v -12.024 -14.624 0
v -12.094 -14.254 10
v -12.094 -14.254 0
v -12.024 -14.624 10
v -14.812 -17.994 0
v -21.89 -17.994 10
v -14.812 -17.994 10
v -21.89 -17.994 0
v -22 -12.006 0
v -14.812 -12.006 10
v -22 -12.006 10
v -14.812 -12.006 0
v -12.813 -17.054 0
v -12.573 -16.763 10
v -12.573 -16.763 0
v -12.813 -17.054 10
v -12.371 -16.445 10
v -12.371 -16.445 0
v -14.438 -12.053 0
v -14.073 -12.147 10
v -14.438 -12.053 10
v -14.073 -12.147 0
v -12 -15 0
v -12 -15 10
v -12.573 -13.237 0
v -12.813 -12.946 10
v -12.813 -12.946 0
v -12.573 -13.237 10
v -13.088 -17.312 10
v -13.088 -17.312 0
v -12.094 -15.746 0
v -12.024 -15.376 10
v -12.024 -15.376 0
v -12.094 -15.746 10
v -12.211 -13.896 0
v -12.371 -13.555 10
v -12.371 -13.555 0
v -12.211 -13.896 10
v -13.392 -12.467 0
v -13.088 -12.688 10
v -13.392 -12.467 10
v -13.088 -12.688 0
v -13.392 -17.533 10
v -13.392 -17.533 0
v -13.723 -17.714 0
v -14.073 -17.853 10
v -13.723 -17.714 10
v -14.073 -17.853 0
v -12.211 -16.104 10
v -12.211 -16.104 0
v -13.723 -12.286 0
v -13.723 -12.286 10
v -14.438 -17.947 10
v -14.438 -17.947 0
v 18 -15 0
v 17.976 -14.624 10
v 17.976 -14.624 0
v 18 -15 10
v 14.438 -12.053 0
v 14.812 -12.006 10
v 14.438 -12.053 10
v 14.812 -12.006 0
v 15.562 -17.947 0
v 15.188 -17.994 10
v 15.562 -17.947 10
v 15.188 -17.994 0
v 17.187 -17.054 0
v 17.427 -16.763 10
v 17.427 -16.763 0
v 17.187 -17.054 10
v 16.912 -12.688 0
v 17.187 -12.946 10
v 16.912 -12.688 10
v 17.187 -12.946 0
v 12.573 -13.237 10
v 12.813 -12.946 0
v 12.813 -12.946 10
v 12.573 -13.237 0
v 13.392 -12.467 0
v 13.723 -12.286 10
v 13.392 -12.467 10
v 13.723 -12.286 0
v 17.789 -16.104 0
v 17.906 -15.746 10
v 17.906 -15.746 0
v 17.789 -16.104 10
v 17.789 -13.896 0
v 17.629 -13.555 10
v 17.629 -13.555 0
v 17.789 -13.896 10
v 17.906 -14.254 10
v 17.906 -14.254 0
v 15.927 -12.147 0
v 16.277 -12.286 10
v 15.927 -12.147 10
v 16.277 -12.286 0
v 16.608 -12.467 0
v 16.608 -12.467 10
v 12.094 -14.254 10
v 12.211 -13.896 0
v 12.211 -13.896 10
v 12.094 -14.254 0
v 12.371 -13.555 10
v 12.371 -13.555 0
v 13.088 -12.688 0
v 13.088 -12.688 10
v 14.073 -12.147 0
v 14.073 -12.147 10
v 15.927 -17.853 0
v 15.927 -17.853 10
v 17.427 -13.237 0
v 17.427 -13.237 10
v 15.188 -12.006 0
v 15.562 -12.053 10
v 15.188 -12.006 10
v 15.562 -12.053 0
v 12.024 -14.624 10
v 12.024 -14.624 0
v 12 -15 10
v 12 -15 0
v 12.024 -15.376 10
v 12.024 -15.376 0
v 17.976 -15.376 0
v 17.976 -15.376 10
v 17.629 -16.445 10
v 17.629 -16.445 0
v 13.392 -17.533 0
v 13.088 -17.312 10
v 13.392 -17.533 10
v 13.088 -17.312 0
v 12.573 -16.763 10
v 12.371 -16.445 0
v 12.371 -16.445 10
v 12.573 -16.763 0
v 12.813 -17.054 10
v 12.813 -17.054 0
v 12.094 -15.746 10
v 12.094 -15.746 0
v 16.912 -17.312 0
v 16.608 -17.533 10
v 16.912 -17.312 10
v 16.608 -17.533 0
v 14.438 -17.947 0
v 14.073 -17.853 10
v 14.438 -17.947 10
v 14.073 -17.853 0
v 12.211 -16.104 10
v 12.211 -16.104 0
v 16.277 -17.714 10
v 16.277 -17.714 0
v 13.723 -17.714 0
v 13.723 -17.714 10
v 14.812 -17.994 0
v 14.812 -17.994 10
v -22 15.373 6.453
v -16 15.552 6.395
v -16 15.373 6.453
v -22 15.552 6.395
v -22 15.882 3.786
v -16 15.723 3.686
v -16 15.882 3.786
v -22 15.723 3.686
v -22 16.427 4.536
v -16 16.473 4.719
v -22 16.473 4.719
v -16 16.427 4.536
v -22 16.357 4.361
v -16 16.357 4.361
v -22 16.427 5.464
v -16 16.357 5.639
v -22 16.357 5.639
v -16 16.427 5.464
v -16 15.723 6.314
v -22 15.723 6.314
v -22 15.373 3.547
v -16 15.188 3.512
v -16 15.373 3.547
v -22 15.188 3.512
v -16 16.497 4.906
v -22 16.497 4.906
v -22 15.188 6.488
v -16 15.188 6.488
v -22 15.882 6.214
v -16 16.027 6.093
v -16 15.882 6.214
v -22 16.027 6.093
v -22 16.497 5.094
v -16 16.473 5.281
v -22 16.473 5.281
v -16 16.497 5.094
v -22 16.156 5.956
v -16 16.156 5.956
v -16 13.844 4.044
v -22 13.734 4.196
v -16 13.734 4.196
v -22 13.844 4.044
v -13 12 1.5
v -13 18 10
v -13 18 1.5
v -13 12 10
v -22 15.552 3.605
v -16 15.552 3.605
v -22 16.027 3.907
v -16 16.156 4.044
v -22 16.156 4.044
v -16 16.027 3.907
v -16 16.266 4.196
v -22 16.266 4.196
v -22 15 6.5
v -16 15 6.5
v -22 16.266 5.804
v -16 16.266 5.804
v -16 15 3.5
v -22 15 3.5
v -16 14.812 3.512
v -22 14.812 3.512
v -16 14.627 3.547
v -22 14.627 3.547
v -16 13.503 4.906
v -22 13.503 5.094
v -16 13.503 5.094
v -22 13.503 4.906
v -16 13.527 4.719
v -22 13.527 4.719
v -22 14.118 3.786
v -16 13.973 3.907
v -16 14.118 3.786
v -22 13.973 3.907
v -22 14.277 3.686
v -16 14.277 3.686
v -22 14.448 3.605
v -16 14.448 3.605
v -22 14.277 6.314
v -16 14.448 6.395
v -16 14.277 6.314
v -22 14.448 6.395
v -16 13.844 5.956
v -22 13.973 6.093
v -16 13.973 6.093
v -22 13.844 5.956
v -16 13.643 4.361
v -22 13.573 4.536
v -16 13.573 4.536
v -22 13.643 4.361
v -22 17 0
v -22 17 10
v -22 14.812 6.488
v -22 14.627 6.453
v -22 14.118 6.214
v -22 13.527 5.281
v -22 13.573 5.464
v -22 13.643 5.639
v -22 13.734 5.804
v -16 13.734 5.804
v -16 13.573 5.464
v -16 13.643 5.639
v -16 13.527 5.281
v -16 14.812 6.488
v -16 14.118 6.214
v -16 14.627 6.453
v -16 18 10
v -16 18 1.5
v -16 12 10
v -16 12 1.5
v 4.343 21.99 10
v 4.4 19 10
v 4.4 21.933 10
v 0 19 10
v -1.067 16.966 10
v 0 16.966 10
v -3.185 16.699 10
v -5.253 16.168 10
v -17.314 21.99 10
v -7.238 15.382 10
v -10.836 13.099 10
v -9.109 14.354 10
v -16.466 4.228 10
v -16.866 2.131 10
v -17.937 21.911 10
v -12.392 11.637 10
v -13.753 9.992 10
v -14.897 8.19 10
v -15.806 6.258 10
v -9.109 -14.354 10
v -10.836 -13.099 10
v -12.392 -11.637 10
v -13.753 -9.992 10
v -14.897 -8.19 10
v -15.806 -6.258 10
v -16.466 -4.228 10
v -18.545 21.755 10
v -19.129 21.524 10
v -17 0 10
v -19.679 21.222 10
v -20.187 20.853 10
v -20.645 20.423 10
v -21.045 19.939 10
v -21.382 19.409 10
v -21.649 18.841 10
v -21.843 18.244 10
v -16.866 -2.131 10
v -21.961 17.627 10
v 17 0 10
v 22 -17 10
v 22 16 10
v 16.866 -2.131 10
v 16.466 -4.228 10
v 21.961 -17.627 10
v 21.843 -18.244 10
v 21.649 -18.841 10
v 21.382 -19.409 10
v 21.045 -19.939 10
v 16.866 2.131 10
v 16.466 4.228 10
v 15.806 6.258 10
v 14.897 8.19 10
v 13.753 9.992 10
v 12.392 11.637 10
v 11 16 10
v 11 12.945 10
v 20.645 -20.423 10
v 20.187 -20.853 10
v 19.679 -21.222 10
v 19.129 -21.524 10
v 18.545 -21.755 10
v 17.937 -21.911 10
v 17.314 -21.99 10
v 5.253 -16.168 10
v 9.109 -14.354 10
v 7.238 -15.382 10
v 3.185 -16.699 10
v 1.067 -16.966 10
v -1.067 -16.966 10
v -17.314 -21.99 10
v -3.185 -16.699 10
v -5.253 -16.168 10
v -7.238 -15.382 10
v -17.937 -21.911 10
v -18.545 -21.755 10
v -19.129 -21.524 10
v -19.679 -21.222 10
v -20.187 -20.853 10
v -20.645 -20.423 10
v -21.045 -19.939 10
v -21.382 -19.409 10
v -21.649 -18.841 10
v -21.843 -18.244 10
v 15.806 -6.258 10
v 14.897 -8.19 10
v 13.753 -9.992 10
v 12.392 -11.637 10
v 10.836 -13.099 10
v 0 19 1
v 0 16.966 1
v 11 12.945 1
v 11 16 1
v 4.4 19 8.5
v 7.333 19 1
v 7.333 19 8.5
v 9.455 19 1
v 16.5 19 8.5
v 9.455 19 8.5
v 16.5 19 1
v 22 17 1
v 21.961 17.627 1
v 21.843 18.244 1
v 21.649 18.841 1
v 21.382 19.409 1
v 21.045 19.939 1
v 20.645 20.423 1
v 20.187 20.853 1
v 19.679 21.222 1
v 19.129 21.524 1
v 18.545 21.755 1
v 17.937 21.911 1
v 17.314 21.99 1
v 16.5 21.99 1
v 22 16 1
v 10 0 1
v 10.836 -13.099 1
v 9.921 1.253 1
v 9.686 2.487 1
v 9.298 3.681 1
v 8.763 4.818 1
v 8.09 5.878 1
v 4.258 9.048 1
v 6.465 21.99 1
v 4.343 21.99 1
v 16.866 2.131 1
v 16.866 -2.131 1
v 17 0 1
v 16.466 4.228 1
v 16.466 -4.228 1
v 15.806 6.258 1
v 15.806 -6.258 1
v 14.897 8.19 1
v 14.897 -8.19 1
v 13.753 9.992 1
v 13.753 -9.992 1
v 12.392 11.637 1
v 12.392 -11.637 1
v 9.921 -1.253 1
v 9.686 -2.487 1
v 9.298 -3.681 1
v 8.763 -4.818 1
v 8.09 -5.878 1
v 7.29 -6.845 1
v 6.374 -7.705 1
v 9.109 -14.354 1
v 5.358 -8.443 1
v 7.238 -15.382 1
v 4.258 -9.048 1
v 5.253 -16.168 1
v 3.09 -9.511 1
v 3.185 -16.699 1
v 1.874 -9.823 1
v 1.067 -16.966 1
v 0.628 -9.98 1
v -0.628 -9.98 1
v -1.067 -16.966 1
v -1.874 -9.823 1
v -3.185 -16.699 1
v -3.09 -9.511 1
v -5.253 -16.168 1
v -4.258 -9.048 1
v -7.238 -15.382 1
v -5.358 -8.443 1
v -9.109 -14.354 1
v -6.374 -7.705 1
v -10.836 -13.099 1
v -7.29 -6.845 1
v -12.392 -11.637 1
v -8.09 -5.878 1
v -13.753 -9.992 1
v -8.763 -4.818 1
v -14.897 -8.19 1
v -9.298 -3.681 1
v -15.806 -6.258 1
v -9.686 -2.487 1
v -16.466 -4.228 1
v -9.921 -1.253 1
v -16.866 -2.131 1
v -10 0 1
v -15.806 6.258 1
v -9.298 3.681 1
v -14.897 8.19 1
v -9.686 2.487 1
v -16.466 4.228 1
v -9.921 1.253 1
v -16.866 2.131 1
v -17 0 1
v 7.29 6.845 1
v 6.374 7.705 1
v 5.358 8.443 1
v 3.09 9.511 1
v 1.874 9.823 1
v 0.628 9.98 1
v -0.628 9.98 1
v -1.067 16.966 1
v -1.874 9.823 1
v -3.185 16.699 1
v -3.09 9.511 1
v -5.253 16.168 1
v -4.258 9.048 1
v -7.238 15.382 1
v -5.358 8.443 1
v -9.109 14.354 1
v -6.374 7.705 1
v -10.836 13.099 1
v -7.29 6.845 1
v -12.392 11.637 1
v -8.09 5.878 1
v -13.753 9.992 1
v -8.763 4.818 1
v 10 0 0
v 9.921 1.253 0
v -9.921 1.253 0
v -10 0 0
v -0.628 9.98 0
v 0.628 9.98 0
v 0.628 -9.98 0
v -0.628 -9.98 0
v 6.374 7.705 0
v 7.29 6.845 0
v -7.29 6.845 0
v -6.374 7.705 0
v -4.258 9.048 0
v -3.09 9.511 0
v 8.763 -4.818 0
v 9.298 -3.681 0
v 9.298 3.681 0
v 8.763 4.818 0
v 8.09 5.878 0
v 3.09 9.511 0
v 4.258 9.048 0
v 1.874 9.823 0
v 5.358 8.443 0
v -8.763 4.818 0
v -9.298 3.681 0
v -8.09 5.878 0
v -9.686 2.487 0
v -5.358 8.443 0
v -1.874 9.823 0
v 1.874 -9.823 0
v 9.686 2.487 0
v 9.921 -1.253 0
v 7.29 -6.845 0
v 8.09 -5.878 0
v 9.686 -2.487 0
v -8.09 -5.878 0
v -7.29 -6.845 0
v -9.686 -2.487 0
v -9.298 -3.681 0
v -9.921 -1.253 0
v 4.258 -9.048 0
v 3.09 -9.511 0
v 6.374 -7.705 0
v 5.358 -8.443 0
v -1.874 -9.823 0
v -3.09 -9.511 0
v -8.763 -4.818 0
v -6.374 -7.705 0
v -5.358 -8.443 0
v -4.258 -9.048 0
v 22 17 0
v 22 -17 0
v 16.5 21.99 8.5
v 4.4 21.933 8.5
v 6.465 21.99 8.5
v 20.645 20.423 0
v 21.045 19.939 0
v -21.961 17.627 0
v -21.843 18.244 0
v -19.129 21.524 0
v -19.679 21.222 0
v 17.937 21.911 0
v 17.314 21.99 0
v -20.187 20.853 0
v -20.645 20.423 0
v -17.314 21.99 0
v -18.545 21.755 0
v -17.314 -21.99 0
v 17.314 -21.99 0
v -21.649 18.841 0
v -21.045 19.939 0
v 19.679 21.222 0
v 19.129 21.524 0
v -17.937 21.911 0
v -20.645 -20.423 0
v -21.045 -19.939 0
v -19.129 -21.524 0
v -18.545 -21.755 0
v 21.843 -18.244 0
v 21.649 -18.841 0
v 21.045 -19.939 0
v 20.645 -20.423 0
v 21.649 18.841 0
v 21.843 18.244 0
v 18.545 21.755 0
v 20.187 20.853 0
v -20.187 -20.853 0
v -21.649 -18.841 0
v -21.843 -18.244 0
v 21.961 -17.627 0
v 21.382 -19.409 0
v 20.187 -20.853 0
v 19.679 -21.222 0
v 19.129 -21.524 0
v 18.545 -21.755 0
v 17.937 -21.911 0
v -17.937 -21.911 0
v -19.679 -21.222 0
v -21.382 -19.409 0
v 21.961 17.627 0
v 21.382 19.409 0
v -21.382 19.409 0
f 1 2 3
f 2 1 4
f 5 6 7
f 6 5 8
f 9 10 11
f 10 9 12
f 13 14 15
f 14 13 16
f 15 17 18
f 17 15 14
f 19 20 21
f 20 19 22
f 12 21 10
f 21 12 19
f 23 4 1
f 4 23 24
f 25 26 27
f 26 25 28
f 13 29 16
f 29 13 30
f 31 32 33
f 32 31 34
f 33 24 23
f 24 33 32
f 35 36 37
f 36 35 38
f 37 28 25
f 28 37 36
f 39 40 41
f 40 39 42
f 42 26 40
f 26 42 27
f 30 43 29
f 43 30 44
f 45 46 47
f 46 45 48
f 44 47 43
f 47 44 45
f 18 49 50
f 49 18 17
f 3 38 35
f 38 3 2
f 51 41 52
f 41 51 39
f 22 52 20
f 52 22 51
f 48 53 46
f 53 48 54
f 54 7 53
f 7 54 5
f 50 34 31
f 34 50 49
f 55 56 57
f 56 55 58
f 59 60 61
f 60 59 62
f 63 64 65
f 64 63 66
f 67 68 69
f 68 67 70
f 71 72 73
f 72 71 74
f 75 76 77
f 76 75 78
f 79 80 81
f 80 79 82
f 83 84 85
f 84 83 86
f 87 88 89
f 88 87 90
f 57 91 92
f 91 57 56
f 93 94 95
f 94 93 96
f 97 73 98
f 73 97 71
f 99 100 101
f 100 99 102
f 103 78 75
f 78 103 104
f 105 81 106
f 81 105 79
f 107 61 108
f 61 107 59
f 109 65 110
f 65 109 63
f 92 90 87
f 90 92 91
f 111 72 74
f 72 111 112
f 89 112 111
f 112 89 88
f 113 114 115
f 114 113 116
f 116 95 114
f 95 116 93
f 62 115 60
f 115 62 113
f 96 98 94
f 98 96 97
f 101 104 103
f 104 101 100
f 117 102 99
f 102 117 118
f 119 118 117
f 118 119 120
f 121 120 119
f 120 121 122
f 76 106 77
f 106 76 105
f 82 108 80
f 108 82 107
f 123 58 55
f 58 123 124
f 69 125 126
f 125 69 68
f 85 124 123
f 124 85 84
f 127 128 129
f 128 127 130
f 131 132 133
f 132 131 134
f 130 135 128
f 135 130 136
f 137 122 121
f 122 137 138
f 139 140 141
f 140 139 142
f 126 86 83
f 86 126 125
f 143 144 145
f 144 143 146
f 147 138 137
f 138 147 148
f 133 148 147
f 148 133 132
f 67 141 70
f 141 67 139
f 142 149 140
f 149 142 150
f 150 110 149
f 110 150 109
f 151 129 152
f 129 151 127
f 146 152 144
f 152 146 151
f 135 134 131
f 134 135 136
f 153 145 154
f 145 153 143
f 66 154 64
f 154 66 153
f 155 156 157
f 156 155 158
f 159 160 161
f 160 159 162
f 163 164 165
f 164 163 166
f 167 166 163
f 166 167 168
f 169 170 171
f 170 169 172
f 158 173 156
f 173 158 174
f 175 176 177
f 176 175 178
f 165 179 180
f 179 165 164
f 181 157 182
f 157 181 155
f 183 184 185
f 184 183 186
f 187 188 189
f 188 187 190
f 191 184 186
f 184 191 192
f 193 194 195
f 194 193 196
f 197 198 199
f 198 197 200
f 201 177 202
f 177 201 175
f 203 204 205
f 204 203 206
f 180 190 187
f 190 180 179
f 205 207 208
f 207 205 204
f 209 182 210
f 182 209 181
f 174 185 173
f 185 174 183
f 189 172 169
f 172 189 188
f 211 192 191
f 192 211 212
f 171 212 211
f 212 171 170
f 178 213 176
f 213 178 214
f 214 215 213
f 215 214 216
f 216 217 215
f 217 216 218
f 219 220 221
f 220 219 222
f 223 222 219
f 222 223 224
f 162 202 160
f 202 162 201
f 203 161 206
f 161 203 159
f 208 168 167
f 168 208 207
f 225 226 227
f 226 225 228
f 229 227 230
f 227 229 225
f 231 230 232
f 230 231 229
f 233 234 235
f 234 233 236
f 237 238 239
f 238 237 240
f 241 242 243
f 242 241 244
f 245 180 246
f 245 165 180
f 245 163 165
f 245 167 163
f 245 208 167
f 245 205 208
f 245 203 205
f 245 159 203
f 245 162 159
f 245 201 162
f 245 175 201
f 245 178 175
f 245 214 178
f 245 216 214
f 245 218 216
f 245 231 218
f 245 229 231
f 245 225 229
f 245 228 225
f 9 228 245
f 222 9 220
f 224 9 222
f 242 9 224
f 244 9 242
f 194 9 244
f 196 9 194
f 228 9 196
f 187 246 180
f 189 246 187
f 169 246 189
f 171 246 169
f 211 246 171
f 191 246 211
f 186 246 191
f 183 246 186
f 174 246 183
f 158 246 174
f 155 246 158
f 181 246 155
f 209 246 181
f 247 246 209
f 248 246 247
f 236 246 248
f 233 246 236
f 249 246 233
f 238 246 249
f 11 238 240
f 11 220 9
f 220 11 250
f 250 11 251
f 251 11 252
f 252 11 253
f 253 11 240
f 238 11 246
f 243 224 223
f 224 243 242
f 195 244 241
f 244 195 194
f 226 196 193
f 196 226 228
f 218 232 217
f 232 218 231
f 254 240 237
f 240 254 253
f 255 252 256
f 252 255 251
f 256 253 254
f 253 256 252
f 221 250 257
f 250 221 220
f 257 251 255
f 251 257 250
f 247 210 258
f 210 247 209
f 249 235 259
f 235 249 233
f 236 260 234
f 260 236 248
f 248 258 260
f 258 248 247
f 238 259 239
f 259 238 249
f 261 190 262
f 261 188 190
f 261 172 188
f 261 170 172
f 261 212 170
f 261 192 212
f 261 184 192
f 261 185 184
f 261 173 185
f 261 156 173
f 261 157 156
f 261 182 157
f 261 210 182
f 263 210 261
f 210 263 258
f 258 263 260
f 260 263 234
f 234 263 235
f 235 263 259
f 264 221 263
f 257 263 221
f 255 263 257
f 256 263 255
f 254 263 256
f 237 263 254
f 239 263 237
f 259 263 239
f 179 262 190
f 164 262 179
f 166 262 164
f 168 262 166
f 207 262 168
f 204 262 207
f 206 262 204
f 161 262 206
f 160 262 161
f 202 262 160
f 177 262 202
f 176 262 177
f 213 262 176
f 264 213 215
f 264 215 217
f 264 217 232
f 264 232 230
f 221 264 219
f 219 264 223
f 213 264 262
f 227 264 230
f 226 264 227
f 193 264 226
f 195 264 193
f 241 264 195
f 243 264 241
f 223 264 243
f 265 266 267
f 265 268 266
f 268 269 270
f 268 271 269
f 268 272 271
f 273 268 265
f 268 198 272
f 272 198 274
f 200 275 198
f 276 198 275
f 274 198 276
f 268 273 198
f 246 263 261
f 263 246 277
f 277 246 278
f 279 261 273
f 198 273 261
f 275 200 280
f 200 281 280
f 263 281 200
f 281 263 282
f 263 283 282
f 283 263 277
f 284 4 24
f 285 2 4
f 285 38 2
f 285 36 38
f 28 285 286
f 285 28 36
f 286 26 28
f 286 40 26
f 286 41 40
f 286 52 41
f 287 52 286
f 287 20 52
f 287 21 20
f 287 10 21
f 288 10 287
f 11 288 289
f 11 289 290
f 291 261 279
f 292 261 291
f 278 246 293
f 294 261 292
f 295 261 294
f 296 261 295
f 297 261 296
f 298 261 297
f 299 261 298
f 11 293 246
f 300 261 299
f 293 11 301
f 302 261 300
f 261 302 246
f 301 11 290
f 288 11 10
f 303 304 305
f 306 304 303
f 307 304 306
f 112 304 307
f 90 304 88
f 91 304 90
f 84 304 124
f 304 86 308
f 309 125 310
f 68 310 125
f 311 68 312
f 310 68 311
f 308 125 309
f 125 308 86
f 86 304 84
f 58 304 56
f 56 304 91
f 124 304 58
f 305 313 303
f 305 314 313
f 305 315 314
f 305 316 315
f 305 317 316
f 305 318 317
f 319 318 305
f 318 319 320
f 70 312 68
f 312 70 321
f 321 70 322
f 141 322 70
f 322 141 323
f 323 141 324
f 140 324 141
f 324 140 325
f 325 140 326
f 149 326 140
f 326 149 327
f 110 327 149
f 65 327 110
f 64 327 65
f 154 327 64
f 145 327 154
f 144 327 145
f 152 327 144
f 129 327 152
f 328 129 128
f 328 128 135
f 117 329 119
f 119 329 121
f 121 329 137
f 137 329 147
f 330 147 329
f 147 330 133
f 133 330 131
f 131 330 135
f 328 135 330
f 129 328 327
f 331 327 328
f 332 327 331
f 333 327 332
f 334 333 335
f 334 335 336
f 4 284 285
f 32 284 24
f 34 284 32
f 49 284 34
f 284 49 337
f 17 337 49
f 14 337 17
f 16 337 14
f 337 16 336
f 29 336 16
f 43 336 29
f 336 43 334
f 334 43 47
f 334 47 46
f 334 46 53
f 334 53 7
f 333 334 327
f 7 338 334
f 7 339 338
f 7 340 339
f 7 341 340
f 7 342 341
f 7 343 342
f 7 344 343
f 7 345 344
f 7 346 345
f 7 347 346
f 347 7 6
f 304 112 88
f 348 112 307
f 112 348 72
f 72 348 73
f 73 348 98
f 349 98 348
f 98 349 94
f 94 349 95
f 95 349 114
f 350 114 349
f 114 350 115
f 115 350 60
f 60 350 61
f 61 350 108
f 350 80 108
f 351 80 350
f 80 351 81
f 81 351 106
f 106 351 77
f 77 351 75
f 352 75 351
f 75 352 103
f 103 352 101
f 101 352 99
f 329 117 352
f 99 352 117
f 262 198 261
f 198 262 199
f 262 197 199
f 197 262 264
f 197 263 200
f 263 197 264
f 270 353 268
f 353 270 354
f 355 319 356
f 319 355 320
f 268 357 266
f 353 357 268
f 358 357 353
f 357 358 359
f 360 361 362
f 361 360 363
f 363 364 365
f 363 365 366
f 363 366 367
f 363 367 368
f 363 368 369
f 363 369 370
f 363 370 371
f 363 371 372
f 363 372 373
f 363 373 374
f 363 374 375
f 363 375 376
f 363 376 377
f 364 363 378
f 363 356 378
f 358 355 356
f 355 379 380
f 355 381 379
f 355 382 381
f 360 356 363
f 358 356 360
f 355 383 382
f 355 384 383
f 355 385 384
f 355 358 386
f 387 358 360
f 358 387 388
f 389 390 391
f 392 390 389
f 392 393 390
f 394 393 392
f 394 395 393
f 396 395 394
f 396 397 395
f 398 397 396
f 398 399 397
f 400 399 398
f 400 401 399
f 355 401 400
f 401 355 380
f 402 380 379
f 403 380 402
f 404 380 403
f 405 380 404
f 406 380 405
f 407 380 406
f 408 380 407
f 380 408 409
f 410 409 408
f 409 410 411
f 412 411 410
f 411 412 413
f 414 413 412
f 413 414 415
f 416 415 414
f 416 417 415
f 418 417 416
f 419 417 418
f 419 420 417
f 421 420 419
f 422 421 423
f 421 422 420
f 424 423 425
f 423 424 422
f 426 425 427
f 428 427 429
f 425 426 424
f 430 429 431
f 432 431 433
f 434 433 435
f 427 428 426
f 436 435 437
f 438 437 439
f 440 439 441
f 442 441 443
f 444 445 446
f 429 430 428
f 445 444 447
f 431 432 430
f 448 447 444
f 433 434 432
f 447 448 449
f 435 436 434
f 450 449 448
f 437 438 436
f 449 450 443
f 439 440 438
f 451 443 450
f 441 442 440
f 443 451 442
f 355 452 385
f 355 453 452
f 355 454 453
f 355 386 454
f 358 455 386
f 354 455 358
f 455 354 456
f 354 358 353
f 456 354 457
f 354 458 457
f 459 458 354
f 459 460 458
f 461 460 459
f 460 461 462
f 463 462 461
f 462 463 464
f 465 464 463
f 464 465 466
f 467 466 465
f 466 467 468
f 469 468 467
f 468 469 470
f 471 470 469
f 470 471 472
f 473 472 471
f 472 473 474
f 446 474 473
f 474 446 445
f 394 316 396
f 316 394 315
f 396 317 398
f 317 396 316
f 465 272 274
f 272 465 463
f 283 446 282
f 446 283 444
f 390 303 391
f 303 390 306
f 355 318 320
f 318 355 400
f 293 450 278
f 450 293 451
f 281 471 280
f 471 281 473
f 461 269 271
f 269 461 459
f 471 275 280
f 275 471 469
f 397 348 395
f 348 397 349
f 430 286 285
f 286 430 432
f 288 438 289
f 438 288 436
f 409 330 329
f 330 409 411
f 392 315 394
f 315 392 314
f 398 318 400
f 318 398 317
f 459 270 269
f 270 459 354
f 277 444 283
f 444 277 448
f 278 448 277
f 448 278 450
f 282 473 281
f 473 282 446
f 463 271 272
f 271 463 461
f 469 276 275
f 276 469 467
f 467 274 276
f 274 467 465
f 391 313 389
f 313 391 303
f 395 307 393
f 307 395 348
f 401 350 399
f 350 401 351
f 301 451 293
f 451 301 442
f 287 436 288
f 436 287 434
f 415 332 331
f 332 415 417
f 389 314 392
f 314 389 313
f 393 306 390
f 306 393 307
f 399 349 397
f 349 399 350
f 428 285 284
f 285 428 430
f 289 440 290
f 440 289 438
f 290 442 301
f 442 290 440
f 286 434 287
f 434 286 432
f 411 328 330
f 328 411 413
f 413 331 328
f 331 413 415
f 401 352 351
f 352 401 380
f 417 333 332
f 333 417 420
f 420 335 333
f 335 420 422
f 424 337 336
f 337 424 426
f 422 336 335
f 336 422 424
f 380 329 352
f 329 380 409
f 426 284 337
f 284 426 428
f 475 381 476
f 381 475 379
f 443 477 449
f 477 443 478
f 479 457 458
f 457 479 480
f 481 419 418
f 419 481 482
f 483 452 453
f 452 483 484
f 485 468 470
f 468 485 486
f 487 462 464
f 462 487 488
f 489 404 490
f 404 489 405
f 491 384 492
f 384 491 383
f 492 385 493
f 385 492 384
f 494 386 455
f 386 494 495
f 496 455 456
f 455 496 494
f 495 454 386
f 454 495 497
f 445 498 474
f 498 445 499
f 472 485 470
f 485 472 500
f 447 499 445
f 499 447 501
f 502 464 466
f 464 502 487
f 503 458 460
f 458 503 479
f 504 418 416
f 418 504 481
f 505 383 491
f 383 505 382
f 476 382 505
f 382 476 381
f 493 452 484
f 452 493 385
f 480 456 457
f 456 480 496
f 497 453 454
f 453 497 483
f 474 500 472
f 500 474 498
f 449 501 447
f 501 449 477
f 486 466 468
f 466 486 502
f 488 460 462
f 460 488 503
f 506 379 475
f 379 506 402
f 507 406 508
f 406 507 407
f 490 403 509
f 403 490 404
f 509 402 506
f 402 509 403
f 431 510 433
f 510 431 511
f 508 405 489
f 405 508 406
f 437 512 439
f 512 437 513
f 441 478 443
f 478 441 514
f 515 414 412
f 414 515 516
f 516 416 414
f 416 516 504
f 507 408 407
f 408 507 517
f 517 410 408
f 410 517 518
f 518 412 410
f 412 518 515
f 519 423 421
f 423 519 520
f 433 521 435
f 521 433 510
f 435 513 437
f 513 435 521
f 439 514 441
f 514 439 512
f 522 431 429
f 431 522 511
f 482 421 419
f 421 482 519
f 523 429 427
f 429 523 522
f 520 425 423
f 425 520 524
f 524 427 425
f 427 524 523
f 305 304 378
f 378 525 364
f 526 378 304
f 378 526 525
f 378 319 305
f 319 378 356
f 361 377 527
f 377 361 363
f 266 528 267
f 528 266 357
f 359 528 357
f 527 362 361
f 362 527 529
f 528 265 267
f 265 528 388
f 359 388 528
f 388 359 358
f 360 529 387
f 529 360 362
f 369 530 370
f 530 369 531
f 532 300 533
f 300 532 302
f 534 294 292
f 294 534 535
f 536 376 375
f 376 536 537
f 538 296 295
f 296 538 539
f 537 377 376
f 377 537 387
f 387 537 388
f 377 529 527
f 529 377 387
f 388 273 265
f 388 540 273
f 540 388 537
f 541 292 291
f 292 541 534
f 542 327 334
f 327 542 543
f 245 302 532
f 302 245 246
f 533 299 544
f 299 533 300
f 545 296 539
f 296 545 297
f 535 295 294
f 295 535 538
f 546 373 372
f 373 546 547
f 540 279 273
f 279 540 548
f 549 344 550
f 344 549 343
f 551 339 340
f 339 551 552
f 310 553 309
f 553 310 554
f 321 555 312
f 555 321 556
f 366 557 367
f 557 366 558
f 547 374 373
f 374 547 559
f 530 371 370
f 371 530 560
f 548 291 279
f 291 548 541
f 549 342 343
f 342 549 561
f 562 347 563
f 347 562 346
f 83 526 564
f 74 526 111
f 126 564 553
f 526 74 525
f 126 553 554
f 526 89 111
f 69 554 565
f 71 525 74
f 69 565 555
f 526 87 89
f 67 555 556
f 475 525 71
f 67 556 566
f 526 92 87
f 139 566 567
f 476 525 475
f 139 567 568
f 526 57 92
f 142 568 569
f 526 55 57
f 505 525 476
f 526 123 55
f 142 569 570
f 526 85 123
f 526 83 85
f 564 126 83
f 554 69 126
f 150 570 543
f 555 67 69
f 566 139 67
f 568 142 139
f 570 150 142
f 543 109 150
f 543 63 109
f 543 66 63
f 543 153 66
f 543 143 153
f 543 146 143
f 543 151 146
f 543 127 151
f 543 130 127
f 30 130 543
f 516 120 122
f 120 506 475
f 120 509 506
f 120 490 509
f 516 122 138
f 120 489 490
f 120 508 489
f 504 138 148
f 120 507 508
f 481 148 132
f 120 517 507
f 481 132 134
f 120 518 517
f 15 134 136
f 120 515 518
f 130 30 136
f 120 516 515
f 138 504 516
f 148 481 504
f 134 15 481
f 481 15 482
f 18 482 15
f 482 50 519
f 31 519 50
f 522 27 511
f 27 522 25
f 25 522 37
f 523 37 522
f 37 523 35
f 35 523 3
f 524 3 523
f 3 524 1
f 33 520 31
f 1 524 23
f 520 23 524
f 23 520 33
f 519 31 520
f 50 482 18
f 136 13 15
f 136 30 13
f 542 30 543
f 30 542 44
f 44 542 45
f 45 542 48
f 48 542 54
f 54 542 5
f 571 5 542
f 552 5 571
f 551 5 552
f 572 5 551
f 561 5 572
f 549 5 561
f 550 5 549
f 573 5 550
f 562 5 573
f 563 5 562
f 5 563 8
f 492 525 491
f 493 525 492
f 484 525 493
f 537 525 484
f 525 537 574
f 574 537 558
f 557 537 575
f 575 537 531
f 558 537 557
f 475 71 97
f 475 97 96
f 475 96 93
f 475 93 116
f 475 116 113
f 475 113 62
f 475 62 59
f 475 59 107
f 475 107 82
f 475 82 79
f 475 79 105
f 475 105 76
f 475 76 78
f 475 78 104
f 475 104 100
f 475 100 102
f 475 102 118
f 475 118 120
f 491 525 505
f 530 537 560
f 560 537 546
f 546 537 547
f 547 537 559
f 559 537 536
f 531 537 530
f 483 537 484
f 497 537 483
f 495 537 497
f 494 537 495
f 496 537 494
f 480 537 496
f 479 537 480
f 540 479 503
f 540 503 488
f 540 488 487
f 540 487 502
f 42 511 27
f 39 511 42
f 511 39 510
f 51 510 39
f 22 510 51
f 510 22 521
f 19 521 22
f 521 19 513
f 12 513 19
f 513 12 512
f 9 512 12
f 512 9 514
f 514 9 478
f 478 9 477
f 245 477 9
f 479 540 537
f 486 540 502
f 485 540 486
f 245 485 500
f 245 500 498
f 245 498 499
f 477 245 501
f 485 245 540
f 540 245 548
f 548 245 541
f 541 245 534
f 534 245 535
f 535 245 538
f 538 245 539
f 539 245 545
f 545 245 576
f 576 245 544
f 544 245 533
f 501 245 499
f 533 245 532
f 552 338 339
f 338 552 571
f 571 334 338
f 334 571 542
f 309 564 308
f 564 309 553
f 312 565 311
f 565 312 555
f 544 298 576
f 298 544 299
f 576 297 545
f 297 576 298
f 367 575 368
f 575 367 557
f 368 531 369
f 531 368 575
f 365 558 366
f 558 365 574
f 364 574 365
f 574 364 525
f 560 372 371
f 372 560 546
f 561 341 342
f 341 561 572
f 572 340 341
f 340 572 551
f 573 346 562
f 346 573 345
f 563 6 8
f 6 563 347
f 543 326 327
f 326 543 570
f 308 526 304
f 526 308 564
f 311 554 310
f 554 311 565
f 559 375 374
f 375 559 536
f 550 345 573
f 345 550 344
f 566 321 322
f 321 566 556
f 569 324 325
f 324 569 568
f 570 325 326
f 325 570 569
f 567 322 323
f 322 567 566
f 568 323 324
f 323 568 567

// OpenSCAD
$fn = 50;


difference() {
	union() {
		translate(v = [0, 0, 0]) {
			rotate(a = [0, 0, 0]) {
				hull() {
					translate(v = [-17.0000000000, 17.0000000000, 0]) {
						rotate(a = [0, 0, 0]) {
							translate(v = [0, 0, 0]) {
								rotate(a = [0, 0, 0]) {
									cylinder(h = 10, r = 5);
								}
							}
						}
					}
					translate(v = [17.0000000000, 17.0000000000, 0]) {
						rotate(a = [0, 0, 0]) {
							translate(v = [0, 0, 0]) {
								rotate(a = [0, 0, 0]) {
									cylinder(h = 10, r = 5);
								}
							}
						}
					}
					translate(v = [-17.0000000000, -17.0000000000, 0]) {
						rotate(a = [0, 0, 0]) {
							translate(v = [0, 0, 0]) {
								rotate(a = [0, 0, 0]) {
									cylinder(h = 10, r = 5);
								}
							}
						}
					}
					translate(v = [17.0000000000, -17.0000000000, 0]) {
						rotate(a = [0, 0, 0]) {
							translate(v = [0, 0, 0]) {
								rotate(a = [0, 0, 0]) {
									cylinder(h = 10, r = 5);
								}
							}
						}
					}
				}
			}
		}
	}
	union() {
		translate(v = [-22.5000000000, -15.0000000000, -125]) {
			rotate(a = [0, 0, 0]) {
				hull() {
					translate(v = [7.5000000000, 0, 0]) {
						rotate(a = [0, 0, 0]) {
							translate(v = [0, 0, 0]) {
								rotate(a = [0, 0, 0]) {
									cylinder(h = 250, r = 3.0000000000);
								}
							}
						}
					}
					translate(v = [-7.5000000000, 0, 0]) {
						rotate(a = [0, 0, 0]) {
							translate(v = [0, 0, 0]) {
								rotate(a = [0, 0, 0]) {
									cylinder(h = 250, r = 3.0000000000);
								}
							}
						}
					}
				}
			}
		}
		translate(v = [15.0000000000, -15.0000000000, -125.0000000000]) {
			rotate(a = [0, 0, 0]) {
				cylinder(h = 250, r = 3.0000000000);
			}
		}
		translate(v = [-22.0000000000, 15.0000000000, 5.0000000000]) {
			rotate(a = [0, 90, 0]) {
				cylinder(h = 9, r = 1.5000000000);
			}
		}
		translate(v = [-16.0000000000, 12.0000000000, 1.5000000000]) {
			rotate(a = [0, 0, 0]) {
				cube(size = [3, 6, 8.5000000000]);
			}
		}
		translate(v = [0.0000000000, 11.0000000000, 1.0000000000]) {
			rotate(a = [0, 0, 0]) {
				cube(size = [11, 8, 12]);
			}
		}
		translate(v = [0, 0, 1.0000000000]) {
			rotate(a = [0, 0, 0]) {
				cylinder(h = 12, r = 17.0000000000);
			}
		}
		translate(v = [0, 0, -5.0000000000]) {
			rotate(a = [0, 0, 0]) {
				cylinder(h = 10, r = 10.0000000000);
			}
		}
		translate(v = [0.0000000000, 16.0000000000, 1]) {
			rotate(a = [0, 0, 0]) {
				cube(size = [22.0000000000, 3, 12]);
			}
		}
		translate(v = [16.5000000000, 16.0000000000, 1]) {
			rotate(a = [0, 0, 0]) {
				cube(size = [5.5000000000, 6, 12]);
			}
		}
		translate(v = [4.4000000000, 16.0000000000, 8.5000000000]) {
			rotate(a = [0, 0, 0]) {
				cube(size = [17.6000000000, 6, 1.5000000000]);
			}
		}
		translate(v = [3.5833333333, 22.7500000000, 1]) {
			rotate(a = [0, 0, -45]) {
				cube(size = [7.5000000000, 1.5000000000, 12]);
			}
		}
	}
}
